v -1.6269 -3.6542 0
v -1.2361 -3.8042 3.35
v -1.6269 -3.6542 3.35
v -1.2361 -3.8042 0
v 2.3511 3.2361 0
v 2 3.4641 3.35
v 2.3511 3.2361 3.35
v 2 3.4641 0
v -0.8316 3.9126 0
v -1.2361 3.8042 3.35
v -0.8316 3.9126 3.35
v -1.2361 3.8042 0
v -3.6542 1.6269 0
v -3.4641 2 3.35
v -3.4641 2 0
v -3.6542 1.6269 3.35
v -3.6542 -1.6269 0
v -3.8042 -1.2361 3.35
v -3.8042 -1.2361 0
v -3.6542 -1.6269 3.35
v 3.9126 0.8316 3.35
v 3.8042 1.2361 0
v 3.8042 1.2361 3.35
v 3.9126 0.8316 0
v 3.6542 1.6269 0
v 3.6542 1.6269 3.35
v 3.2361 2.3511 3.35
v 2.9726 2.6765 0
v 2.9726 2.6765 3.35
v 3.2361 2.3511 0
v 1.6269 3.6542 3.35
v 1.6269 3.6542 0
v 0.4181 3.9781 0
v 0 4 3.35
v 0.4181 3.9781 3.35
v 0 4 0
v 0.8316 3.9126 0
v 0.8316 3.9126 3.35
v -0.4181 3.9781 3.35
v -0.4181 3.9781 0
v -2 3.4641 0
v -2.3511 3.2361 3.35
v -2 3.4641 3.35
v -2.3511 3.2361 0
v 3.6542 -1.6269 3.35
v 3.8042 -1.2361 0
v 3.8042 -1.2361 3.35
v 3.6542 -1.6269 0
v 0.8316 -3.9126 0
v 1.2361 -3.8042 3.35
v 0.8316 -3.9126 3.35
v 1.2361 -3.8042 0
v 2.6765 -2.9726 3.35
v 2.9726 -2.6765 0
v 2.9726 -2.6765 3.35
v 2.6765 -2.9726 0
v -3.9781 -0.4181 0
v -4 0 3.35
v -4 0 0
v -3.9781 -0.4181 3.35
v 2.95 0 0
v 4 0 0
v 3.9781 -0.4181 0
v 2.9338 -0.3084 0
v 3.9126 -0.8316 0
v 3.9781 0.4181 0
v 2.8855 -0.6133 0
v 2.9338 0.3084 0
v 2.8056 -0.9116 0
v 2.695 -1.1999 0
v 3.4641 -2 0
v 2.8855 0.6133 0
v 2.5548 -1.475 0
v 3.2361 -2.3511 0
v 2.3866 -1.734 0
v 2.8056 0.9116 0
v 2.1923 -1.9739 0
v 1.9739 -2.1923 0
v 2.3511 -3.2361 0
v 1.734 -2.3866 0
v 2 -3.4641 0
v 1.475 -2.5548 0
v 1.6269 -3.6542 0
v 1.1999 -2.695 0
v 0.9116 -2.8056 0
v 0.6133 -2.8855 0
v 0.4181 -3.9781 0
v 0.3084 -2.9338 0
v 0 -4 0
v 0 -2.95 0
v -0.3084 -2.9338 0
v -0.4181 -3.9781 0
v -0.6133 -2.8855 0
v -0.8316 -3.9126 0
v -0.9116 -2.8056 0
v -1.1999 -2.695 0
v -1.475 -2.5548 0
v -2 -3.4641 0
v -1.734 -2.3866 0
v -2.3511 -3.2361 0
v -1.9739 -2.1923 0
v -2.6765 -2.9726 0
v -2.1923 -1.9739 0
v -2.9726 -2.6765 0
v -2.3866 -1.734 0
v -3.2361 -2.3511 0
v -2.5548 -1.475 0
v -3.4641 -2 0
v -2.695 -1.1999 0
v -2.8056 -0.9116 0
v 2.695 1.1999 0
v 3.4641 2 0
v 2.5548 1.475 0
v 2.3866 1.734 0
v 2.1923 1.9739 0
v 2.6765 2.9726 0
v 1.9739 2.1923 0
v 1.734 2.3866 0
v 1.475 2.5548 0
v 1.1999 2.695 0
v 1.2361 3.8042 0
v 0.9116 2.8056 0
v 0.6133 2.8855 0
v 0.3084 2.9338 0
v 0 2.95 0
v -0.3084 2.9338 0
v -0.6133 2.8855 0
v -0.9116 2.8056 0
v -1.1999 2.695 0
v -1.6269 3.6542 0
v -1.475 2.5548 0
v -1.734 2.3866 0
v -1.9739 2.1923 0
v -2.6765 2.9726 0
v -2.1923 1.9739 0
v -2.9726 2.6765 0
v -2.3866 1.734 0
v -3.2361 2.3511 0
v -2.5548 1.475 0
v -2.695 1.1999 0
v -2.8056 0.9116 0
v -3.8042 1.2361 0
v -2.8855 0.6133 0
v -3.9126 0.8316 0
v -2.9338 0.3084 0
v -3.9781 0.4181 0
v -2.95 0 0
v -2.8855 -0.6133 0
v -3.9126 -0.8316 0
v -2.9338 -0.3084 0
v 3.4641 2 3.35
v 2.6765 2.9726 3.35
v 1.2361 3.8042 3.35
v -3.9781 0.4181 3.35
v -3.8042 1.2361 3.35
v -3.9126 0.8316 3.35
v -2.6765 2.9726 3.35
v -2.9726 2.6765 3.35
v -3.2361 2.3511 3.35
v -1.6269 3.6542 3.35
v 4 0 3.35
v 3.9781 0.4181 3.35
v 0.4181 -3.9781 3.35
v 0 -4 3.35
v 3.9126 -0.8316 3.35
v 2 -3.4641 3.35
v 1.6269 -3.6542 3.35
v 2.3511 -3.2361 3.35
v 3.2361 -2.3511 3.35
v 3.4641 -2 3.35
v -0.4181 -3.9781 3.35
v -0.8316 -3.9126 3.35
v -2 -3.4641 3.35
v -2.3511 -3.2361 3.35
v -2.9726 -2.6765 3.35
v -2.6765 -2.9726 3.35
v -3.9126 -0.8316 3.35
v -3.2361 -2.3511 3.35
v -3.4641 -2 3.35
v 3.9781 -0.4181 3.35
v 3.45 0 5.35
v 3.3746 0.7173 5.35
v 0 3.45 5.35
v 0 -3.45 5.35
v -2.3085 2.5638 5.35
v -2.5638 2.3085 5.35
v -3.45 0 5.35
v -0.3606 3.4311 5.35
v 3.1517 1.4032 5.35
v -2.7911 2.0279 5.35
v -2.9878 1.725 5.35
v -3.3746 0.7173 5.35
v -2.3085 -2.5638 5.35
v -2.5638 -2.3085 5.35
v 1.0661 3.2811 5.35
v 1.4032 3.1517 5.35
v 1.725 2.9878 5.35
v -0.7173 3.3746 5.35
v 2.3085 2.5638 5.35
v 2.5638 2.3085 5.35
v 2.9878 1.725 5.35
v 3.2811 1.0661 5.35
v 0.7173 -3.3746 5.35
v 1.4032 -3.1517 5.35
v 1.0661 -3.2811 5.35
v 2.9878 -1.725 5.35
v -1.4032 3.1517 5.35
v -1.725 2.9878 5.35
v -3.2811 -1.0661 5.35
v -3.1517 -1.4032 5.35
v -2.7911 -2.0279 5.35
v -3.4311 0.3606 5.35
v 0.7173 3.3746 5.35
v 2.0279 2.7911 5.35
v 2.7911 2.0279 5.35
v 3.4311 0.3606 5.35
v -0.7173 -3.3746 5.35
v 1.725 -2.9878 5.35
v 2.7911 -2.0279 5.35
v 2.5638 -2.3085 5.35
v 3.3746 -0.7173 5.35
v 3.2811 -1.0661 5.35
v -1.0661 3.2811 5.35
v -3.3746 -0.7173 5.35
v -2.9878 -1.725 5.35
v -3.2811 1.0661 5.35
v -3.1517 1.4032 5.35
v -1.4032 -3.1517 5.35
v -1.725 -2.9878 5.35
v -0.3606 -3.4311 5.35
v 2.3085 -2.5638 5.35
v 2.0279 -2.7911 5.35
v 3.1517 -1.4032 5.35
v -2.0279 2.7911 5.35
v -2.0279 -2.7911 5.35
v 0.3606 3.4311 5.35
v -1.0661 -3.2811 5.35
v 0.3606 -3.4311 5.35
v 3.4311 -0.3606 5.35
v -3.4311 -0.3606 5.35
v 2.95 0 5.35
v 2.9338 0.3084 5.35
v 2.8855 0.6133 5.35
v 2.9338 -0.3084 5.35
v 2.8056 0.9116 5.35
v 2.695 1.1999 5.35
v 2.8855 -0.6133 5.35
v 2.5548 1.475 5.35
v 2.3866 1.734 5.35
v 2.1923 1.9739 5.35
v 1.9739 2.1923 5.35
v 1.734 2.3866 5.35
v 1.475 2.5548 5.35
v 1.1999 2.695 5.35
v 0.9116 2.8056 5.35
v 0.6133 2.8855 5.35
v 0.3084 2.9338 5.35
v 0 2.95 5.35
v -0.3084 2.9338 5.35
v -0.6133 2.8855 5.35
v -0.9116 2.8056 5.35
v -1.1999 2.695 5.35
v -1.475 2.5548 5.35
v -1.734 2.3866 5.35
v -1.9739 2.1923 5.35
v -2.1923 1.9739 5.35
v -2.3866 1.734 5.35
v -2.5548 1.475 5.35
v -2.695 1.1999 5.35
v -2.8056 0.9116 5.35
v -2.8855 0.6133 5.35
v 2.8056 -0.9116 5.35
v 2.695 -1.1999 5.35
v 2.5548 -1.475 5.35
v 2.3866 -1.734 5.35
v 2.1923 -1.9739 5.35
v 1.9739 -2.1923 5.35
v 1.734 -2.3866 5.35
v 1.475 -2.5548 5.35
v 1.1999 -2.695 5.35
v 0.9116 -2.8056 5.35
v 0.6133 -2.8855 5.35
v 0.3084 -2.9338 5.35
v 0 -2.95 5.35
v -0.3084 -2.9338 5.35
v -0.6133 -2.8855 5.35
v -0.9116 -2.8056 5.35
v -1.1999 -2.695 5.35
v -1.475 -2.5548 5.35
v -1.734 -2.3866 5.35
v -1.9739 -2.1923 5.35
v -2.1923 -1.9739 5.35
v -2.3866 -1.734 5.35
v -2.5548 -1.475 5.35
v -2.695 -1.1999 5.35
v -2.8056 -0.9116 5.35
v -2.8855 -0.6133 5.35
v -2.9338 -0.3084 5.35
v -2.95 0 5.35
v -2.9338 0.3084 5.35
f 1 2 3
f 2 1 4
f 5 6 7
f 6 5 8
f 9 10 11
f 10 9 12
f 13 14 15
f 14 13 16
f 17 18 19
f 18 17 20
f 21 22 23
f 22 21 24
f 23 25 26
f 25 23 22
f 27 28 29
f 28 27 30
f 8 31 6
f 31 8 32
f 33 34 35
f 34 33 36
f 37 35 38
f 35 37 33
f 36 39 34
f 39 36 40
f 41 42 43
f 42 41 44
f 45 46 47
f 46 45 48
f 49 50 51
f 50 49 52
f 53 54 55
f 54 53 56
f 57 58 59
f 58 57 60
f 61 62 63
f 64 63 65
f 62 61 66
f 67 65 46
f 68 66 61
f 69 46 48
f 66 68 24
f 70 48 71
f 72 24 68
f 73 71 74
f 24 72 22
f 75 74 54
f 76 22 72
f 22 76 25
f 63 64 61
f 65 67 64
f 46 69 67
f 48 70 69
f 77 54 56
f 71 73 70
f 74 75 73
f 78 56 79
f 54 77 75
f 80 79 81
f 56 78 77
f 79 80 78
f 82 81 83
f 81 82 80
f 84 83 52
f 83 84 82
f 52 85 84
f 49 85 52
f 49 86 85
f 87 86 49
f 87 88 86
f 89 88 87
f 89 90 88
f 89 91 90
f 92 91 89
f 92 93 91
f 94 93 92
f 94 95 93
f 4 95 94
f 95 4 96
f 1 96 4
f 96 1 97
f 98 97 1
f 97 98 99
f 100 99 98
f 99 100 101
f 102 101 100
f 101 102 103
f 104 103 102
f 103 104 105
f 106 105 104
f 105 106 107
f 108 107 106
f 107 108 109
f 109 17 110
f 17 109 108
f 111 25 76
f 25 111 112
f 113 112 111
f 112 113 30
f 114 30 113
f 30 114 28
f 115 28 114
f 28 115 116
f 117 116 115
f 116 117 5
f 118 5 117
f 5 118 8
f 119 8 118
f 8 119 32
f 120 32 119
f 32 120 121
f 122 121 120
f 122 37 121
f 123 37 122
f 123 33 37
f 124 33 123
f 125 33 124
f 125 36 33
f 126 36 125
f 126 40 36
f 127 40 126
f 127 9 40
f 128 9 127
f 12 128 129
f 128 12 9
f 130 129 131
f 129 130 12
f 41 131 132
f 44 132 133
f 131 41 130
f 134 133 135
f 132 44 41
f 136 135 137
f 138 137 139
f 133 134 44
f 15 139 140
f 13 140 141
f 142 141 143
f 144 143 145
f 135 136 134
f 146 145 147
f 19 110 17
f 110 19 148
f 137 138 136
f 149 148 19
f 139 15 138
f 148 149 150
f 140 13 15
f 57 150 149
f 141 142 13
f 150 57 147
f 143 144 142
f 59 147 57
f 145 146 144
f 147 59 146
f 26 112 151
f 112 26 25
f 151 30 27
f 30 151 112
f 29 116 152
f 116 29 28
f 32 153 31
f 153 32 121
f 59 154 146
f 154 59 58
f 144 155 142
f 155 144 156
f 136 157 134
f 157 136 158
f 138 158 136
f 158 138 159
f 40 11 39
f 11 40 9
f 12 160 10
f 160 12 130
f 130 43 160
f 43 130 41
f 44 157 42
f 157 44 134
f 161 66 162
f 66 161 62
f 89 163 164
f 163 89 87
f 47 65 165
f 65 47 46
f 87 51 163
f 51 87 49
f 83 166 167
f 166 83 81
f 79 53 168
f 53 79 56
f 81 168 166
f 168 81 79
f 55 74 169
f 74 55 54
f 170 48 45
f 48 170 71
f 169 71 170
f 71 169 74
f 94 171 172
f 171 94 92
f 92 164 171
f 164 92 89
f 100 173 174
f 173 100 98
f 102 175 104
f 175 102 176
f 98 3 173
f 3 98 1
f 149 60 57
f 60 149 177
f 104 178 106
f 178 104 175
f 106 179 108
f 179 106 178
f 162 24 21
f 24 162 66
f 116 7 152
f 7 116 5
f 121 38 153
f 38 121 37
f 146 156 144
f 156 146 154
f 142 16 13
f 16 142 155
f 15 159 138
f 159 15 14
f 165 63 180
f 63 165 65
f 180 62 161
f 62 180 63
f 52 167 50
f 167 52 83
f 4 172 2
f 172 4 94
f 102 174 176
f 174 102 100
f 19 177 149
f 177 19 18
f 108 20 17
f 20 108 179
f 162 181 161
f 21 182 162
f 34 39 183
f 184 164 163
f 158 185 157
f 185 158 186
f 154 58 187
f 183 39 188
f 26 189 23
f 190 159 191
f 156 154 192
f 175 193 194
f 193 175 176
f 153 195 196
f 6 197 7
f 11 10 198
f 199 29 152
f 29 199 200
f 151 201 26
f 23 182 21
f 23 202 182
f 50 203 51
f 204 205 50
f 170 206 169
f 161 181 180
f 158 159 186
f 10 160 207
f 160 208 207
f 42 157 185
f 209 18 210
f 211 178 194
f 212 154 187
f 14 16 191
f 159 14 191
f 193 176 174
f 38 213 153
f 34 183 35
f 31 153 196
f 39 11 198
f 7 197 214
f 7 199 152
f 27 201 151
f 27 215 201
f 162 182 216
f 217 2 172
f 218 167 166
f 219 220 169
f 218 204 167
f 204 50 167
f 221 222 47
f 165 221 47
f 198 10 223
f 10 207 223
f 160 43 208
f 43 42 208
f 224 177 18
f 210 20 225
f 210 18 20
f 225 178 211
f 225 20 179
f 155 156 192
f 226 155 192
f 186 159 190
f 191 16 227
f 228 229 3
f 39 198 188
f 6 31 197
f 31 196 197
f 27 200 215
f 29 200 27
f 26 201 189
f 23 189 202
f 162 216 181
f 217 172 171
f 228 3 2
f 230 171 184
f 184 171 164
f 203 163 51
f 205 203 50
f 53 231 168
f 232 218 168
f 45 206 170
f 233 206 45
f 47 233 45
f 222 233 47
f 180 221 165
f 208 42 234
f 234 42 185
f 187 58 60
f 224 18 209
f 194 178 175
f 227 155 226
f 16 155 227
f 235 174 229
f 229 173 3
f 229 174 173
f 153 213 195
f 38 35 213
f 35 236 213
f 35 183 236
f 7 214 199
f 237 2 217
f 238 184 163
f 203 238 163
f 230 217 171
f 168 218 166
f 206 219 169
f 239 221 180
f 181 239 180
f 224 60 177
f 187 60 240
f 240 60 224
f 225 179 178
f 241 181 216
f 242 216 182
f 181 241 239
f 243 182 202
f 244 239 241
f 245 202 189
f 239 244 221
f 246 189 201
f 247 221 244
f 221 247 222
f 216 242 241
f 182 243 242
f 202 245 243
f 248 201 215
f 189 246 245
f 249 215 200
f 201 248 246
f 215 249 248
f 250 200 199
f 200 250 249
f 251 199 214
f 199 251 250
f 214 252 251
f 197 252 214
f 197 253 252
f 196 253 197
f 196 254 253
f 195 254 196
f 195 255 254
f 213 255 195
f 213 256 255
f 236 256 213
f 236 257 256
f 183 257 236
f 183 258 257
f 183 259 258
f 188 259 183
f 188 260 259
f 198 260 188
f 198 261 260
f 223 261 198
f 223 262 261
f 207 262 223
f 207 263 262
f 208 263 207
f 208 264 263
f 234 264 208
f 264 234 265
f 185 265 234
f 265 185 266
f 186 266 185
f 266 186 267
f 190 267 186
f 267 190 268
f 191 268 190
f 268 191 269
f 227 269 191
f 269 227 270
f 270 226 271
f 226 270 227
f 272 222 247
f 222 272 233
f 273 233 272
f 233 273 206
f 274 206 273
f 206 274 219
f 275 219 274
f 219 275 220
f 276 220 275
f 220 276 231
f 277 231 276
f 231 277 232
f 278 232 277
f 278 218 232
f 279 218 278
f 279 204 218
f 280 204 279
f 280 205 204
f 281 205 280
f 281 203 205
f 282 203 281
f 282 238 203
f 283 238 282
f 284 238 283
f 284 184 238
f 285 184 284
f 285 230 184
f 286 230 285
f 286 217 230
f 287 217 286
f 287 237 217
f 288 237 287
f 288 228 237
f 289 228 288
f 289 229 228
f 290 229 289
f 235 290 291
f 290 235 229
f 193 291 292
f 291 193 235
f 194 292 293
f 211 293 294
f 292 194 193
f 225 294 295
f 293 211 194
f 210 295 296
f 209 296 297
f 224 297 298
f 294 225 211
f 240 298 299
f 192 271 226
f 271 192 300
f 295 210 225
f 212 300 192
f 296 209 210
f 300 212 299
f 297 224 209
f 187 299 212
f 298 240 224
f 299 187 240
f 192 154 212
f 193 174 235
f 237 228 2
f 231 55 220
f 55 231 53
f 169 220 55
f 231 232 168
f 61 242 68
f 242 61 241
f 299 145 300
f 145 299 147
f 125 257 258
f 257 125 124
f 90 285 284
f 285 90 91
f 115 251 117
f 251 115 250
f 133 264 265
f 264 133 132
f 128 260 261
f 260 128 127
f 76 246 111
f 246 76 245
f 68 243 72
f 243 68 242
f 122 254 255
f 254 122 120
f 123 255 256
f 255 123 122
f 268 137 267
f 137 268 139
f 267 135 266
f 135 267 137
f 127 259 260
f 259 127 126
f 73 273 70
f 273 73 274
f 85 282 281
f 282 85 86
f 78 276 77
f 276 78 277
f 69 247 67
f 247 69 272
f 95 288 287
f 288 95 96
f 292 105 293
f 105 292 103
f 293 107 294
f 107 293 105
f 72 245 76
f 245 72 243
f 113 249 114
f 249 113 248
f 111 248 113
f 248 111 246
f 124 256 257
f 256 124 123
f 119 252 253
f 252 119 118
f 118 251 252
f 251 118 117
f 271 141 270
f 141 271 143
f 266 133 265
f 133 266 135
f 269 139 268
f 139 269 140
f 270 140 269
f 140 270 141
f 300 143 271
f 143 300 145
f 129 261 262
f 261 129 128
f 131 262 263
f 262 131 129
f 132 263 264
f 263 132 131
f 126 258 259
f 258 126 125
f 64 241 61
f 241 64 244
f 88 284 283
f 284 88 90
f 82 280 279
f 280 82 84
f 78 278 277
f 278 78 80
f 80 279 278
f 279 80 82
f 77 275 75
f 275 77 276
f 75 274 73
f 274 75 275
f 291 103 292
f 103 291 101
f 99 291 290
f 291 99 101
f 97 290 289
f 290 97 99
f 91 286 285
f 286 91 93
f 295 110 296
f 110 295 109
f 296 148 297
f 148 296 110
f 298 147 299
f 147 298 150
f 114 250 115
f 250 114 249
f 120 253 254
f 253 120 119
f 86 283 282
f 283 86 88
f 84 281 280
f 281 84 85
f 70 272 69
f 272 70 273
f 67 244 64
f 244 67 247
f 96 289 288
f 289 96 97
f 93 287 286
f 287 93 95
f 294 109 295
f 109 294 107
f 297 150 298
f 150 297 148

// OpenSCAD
 
$fn=60;

screwCutout = 5.9;

outterDiameter = 8;
baseHeigth = 3.35;
coneHeigth = 2;

//translate([-4,-4,0]) import("../Wheel_spacers_alternative/files/32-Wheel_Spacer_Upgraded.STL");

difference(){
	union(){
		translate([0,0,0]) 					// Base
			cylinder(d=outterDiameter,h=baseHeigth);
		translate([0,0,baseHeigth])
			cylinder(h=coneHeigth,d1=outterDiameter,d2=screwCutout+1);
	}
	translate([0,0,0]) 					// Cut out
		cylinder(d=screwCutout,h=20,center=true);
}
	
////////////////////////////////////////////////////////////////////////////////////////////////////
module plate2Point(y,z,d){
	hull(){
		color("green") translate([0 ,(y/2) -(d/2),0]) cylinder(h=z, d=d, center=true);
		color("blue")  translate([0 ,-(y/2)+(d/2),0]) cylinder(h=z, d=d, center=true);
	}
}
////////////////////////////////////////////////////////////////////////////////////////////////////
module plate4Point(x,y,z,d){
	hull(){
		color("green") translate([(x/2)-(d/2) ,(y/2) -(d/2),0]) cylinder(h=z, d=d, center=true);
		color("blue")  translate([(x/2)-(d/2) ,-(y/2)+(d/2),0]) cylinder(h=z, d=d, center=true);
		color("red")   translate([-(x/2)+(d/2),(y/2) -(d/2),0]) cylinder(h=z, d=d, center=true);
		color("grey")  translate([-(x/2)+(d/2),-(y/2)+(d/2),0]) cylinder(h=z, d=d, center=true);
	}
}
